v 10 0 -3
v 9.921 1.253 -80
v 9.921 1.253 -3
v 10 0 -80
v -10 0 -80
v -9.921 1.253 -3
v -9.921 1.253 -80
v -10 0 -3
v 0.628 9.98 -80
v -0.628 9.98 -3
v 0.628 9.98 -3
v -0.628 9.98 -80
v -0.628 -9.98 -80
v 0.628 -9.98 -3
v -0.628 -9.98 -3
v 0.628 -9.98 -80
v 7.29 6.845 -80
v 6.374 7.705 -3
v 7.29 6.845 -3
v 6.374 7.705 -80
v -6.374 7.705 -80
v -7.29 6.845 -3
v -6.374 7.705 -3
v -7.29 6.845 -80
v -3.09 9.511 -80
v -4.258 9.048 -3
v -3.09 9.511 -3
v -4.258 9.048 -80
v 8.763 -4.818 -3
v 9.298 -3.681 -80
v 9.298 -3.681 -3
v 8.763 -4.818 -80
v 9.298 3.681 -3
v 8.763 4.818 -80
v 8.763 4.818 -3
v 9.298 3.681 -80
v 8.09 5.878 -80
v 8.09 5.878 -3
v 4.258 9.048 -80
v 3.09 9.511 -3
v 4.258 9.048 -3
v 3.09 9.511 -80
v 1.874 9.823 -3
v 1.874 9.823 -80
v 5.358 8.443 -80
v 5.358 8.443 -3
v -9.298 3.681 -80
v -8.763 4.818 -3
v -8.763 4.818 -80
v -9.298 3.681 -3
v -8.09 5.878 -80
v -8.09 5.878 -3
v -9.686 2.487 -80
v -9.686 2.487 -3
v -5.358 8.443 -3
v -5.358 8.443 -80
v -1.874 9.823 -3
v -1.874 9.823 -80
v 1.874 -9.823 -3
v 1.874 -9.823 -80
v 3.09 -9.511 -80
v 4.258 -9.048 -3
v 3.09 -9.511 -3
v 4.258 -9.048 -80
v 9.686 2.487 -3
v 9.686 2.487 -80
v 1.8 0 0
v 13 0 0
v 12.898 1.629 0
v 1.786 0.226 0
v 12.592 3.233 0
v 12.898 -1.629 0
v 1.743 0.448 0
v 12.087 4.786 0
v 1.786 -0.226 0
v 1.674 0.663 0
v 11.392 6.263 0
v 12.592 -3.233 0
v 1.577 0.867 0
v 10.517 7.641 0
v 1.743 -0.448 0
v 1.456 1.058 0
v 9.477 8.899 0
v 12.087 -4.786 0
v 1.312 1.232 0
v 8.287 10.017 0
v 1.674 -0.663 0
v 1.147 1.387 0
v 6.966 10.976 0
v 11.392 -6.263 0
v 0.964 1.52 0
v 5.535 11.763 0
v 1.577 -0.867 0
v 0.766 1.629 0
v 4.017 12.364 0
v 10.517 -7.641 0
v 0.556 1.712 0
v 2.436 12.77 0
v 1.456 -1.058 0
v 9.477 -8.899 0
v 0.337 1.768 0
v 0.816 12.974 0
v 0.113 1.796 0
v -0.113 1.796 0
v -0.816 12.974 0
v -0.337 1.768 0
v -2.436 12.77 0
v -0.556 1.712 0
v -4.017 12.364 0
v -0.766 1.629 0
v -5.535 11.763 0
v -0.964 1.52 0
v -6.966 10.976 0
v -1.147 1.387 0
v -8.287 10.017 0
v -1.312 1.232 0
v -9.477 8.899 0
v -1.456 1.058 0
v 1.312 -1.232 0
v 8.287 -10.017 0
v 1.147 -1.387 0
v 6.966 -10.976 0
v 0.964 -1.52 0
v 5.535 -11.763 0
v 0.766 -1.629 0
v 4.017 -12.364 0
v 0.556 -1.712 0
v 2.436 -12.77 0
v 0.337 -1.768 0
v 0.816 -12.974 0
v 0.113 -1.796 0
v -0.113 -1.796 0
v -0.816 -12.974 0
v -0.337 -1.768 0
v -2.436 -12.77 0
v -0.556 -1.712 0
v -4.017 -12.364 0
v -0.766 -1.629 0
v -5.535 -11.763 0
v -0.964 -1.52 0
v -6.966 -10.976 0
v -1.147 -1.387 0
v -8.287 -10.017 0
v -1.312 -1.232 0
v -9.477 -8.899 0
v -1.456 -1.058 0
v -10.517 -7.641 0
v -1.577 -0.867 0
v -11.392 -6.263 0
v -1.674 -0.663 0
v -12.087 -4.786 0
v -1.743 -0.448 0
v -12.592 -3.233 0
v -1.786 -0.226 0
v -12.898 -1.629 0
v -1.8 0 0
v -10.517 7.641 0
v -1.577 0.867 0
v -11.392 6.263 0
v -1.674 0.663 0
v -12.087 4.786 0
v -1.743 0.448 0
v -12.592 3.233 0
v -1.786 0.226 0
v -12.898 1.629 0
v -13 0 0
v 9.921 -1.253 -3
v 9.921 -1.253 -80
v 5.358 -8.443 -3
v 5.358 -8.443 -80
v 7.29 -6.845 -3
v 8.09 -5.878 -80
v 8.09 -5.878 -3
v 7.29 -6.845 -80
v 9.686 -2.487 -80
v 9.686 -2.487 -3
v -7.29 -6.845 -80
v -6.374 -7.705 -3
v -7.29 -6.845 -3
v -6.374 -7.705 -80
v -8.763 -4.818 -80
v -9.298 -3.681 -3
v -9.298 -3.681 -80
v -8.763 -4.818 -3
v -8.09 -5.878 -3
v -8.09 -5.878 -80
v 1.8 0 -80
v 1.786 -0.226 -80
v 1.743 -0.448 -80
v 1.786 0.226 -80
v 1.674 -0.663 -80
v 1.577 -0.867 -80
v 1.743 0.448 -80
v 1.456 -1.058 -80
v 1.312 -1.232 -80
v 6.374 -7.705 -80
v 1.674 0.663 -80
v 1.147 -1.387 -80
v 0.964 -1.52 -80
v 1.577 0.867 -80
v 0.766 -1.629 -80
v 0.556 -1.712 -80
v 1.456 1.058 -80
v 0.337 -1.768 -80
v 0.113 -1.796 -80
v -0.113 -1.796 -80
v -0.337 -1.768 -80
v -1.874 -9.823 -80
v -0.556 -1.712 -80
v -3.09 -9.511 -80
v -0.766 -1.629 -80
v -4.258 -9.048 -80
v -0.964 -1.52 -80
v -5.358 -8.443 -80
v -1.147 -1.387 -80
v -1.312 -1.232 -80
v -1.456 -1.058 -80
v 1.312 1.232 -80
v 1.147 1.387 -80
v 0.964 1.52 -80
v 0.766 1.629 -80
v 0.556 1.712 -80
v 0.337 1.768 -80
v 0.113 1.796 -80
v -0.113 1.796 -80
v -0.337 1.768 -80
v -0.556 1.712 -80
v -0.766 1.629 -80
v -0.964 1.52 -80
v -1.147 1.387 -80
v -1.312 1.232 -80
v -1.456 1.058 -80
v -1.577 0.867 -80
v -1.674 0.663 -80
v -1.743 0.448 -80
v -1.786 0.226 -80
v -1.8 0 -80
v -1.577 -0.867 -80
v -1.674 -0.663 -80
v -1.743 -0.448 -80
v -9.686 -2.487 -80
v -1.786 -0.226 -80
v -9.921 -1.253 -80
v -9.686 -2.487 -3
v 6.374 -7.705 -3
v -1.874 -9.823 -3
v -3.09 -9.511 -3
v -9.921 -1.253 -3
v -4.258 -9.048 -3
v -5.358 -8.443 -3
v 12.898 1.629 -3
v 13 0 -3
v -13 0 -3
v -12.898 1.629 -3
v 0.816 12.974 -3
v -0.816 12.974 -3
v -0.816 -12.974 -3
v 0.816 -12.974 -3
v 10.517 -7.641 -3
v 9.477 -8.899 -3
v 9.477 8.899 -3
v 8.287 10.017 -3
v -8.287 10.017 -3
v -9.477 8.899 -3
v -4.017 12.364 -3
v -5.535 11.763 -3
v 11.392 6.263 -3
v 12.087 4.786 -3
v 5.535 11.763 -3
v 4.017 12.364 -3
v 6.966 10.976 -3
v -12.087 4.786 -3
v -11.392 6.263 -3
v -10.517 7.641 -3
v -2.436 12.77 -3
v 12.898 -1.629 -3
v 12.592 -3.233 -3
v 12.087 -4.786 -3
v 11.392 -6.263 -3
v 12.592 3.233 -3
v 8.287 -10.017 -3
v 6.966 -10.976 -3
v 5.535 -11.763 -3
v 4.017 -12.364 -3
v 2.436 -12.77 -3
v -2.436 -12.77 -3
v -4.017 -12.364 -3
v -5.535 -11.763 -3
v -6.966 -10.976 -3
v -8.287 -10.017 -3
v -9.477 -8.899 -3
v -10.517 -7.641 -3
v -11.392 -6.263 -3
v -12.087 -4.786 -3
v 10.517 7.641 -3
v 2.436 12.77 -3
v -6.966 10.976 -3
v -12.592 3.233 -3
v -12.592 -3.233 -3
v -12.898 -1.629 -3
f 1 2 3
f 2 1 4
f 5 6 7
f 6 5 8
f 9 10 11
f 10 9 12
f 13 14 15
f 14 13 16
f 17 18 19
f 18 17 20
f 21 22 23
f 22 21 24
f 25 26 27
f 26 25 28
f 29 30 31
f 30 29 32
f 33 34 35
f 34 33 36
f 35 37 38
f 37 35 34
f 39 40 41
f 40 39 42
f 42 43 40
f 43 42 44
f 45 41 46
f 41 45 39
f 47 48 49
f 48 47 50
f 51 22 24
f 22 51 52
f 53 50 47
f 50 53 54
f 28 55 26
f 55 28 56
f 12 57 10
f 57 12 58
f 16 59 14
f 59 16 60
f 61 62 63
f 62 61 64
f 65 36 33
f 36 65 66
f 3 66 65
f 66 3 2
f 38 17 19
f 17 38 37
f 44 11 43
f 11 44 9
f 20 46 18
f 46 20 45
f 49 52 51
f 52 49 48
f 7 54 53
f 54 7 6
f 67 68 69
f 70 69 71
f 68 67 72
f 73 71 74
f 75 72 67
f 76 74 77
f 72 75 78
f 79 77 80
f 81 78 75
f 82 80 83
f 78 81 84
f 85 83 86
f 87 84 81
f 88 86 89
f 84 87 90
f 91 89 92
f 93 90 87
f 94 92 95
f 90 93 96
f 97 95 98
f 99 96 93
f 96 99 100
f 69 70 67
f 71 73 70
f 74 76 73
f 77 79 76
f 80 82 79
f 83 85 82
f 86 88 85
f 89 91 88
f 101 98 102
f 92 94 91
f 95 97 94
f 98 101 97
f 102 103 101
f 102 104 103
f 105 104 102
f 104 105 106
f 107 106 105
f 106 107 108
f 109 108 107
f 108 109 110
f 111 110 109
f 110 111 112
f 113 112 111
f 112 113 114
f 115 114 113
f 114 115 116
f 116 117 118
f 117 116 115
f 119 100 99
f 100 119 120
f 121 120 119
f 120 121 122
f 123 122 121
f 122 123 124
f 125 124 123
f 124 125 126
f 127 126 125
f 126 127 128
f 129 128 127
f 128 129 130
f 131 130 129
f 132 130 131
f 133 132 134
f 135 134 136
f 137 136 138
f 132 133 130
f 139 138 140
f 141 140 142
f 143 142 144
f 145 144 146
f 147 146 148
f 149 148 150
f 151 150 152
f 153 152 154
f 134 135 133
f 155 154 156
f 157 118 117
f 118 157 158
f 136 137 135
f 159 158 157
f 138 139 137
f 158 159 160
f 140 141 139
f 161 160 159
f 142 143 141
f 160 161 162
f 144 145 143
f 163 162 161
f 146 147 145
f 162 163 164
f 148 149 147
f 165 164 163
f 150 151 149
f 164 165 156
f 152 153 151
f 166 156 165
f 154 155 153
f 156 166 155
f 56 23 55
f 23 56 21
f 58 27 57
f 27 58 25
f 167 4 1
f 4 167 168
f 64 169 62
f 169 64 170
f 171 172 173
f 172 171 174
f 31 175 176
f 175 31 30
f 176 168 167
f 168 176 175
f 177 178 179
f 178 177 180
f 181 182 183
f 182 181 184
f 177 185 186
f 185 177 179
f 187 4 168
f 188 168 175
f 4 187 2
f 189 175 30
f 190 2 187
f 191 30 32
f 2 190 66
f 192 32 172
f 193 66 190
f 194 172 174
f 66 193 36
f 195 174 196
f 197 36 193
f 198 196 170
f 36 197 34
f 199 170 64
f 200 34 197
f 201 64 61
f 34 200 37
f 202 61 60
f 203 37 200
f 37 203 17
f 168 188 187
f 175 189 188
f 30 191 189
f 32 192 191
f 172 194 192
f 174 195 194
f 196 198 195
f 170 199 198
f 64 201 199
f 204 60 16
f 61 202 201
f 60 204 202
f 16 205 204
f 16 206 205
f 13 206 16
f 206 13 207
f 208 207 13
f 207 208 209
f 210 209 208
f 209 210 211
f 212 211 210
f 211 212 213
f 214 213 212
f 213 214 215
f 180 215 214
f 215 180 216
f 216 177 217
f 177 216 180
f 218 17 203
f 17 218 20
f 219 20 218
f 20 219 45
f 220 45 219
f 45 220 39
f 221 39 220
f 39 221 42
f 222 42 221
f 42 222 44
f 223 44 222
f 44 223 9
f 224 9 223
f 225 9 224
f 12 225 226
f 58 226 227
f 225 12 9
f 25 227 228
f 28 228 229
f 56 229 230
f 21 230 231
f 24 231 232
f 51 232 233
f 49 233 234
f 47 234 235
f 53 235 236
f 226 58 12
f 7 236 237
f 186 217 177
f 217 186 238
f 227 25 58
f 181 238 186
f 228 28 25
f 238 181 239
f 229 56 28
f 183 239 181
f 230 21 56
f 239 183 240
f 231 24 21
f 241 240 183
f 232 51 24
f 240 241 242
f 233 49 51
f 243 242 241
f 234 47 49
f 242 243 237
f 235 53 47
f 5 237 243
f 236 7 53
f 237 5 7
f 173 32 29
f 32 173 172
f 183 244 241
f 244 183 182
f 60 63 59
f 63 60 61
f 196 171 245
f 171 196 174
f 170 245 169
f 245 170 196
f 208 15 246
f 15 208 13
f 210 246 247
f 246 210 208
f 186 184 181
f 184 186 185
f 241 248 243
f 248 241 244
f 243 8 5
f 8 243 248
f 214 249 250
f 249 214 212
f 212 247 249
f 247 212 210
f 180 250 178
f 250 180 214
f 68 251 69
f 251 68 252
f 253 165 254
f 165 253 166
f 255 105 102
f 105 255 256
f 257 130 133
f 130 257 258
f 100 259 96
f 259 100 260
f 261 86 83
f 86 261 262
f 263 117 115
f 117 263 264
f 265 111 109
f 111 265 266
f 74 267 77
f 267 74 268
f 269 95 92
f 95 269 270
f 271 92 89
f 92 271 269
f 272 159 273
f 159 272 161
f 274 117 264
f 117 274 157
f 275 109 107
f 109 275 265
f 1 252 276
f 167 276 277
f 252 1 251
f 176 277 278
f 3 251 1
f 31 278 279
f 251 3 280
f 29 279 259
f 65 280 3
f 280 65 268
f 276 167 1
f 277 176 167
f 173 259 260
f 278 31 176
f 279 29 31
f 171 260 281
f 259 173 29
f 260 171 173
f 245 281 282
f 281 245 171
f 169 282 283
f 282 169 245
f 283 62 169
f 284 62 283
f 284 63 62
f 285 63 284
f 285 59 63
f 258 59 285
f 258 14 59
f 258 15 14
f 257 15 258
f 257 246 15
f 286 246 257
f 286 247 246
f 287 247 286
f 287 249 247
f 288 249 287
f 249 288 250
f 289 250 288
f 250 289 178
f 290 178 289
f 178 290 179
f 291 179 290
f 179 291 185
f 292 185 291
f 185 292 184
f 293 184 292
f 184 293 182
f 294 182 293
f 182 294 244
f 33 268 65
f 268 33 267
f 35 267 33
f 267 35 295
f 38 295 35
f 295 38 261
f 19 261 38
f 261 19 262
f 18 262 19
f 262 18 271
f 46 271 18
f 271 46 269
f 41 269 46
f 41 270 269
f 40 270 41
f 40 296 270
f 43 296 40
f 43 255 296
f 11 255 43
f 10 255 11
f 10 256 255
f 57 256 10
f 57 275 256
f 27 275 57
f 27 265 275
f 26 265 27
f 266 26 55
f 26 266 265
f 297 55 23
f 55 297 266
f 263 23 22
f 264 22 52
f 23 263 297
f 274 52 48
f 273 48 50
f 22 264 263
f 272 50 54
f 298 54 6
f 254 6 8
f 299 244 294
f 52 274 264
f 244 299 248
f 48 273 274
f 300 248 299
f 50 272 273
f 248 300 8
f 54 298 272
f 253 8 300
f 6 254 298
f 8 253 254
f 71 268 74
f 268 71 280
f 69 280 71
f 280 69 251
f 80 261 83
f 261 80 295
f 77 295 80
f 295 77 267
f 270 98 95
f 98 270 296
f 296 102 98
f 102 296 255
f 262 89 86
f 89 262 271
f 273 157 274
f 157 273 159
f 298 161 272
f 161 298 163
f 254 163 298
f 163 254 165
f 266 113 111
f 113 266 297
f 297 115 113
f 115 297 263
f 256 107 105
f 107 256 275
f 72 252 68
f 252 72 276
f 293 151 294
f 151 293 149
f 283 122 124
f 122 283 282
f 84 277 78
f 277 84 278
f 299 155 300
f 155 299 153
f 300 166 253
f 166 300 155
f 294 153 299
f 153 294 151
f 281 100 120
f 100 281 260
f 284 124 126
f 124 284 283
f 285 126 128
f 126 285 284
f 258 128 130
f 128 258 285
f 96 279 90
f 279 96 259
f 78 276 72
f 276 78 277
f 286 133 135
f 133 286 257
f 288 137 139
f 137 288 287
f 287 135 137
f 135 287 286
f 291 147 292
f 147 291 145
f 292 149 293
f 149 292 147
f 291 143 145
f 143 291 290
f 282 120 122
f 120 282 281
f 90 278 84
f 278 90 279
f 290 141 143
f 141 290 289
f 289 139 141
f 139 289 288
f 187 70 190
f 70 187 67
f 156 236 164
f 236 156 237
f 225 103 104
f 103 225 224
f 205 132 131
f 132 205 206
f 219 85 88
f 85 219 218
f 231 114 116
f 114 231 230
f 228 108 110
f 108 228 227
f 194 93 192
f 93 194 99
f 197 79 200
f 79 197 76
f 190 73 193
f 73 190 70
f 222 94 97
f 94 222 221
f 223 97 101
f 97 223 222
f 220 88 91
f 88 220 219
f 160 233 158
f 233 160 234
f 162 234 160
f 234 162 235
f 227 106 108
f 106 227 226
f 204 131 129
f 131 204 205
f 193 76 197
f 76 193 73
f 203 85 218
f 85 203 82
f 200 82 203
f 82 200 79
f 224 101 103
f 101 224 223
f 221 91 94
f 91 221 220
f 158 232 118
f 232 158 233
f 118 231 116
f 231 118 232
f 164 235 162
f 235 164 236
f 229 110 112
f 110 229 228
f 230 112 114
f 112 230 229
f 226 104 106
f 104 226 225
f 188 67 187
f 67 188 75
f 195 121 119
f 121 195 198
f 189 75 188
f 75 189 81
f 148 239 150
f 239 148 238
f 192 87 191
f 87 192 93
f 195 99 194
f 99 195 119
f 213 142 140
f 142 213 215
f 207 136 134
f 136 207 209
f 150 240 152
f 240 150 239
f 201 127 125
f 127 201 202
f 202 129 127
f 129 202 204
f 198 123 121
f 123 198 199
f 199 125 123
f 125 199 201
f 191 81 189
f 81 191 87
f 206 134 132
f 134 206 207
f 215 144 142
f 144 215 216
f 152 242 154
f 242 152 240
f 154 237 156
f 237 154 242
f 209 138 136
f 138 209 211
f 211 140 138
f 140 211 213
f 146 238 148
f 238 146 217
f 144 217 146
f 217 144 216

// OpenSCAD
$fn = 50;


difference() {
	union() {
		translate(v = [0, 0, -80.0000000000]) {
			cylinder(h = 80, r = 10.0000000000);
		}
		translate(v = [0, 0, -3.0000000000]) {
			cylinder(h = 3, r = 13.0000000000);
		}
	}
	union() {
		#translate(v = [0, 0, -80]) {
			cylinder(h = 80, r = 1.8000000000);
		}
	}
}
